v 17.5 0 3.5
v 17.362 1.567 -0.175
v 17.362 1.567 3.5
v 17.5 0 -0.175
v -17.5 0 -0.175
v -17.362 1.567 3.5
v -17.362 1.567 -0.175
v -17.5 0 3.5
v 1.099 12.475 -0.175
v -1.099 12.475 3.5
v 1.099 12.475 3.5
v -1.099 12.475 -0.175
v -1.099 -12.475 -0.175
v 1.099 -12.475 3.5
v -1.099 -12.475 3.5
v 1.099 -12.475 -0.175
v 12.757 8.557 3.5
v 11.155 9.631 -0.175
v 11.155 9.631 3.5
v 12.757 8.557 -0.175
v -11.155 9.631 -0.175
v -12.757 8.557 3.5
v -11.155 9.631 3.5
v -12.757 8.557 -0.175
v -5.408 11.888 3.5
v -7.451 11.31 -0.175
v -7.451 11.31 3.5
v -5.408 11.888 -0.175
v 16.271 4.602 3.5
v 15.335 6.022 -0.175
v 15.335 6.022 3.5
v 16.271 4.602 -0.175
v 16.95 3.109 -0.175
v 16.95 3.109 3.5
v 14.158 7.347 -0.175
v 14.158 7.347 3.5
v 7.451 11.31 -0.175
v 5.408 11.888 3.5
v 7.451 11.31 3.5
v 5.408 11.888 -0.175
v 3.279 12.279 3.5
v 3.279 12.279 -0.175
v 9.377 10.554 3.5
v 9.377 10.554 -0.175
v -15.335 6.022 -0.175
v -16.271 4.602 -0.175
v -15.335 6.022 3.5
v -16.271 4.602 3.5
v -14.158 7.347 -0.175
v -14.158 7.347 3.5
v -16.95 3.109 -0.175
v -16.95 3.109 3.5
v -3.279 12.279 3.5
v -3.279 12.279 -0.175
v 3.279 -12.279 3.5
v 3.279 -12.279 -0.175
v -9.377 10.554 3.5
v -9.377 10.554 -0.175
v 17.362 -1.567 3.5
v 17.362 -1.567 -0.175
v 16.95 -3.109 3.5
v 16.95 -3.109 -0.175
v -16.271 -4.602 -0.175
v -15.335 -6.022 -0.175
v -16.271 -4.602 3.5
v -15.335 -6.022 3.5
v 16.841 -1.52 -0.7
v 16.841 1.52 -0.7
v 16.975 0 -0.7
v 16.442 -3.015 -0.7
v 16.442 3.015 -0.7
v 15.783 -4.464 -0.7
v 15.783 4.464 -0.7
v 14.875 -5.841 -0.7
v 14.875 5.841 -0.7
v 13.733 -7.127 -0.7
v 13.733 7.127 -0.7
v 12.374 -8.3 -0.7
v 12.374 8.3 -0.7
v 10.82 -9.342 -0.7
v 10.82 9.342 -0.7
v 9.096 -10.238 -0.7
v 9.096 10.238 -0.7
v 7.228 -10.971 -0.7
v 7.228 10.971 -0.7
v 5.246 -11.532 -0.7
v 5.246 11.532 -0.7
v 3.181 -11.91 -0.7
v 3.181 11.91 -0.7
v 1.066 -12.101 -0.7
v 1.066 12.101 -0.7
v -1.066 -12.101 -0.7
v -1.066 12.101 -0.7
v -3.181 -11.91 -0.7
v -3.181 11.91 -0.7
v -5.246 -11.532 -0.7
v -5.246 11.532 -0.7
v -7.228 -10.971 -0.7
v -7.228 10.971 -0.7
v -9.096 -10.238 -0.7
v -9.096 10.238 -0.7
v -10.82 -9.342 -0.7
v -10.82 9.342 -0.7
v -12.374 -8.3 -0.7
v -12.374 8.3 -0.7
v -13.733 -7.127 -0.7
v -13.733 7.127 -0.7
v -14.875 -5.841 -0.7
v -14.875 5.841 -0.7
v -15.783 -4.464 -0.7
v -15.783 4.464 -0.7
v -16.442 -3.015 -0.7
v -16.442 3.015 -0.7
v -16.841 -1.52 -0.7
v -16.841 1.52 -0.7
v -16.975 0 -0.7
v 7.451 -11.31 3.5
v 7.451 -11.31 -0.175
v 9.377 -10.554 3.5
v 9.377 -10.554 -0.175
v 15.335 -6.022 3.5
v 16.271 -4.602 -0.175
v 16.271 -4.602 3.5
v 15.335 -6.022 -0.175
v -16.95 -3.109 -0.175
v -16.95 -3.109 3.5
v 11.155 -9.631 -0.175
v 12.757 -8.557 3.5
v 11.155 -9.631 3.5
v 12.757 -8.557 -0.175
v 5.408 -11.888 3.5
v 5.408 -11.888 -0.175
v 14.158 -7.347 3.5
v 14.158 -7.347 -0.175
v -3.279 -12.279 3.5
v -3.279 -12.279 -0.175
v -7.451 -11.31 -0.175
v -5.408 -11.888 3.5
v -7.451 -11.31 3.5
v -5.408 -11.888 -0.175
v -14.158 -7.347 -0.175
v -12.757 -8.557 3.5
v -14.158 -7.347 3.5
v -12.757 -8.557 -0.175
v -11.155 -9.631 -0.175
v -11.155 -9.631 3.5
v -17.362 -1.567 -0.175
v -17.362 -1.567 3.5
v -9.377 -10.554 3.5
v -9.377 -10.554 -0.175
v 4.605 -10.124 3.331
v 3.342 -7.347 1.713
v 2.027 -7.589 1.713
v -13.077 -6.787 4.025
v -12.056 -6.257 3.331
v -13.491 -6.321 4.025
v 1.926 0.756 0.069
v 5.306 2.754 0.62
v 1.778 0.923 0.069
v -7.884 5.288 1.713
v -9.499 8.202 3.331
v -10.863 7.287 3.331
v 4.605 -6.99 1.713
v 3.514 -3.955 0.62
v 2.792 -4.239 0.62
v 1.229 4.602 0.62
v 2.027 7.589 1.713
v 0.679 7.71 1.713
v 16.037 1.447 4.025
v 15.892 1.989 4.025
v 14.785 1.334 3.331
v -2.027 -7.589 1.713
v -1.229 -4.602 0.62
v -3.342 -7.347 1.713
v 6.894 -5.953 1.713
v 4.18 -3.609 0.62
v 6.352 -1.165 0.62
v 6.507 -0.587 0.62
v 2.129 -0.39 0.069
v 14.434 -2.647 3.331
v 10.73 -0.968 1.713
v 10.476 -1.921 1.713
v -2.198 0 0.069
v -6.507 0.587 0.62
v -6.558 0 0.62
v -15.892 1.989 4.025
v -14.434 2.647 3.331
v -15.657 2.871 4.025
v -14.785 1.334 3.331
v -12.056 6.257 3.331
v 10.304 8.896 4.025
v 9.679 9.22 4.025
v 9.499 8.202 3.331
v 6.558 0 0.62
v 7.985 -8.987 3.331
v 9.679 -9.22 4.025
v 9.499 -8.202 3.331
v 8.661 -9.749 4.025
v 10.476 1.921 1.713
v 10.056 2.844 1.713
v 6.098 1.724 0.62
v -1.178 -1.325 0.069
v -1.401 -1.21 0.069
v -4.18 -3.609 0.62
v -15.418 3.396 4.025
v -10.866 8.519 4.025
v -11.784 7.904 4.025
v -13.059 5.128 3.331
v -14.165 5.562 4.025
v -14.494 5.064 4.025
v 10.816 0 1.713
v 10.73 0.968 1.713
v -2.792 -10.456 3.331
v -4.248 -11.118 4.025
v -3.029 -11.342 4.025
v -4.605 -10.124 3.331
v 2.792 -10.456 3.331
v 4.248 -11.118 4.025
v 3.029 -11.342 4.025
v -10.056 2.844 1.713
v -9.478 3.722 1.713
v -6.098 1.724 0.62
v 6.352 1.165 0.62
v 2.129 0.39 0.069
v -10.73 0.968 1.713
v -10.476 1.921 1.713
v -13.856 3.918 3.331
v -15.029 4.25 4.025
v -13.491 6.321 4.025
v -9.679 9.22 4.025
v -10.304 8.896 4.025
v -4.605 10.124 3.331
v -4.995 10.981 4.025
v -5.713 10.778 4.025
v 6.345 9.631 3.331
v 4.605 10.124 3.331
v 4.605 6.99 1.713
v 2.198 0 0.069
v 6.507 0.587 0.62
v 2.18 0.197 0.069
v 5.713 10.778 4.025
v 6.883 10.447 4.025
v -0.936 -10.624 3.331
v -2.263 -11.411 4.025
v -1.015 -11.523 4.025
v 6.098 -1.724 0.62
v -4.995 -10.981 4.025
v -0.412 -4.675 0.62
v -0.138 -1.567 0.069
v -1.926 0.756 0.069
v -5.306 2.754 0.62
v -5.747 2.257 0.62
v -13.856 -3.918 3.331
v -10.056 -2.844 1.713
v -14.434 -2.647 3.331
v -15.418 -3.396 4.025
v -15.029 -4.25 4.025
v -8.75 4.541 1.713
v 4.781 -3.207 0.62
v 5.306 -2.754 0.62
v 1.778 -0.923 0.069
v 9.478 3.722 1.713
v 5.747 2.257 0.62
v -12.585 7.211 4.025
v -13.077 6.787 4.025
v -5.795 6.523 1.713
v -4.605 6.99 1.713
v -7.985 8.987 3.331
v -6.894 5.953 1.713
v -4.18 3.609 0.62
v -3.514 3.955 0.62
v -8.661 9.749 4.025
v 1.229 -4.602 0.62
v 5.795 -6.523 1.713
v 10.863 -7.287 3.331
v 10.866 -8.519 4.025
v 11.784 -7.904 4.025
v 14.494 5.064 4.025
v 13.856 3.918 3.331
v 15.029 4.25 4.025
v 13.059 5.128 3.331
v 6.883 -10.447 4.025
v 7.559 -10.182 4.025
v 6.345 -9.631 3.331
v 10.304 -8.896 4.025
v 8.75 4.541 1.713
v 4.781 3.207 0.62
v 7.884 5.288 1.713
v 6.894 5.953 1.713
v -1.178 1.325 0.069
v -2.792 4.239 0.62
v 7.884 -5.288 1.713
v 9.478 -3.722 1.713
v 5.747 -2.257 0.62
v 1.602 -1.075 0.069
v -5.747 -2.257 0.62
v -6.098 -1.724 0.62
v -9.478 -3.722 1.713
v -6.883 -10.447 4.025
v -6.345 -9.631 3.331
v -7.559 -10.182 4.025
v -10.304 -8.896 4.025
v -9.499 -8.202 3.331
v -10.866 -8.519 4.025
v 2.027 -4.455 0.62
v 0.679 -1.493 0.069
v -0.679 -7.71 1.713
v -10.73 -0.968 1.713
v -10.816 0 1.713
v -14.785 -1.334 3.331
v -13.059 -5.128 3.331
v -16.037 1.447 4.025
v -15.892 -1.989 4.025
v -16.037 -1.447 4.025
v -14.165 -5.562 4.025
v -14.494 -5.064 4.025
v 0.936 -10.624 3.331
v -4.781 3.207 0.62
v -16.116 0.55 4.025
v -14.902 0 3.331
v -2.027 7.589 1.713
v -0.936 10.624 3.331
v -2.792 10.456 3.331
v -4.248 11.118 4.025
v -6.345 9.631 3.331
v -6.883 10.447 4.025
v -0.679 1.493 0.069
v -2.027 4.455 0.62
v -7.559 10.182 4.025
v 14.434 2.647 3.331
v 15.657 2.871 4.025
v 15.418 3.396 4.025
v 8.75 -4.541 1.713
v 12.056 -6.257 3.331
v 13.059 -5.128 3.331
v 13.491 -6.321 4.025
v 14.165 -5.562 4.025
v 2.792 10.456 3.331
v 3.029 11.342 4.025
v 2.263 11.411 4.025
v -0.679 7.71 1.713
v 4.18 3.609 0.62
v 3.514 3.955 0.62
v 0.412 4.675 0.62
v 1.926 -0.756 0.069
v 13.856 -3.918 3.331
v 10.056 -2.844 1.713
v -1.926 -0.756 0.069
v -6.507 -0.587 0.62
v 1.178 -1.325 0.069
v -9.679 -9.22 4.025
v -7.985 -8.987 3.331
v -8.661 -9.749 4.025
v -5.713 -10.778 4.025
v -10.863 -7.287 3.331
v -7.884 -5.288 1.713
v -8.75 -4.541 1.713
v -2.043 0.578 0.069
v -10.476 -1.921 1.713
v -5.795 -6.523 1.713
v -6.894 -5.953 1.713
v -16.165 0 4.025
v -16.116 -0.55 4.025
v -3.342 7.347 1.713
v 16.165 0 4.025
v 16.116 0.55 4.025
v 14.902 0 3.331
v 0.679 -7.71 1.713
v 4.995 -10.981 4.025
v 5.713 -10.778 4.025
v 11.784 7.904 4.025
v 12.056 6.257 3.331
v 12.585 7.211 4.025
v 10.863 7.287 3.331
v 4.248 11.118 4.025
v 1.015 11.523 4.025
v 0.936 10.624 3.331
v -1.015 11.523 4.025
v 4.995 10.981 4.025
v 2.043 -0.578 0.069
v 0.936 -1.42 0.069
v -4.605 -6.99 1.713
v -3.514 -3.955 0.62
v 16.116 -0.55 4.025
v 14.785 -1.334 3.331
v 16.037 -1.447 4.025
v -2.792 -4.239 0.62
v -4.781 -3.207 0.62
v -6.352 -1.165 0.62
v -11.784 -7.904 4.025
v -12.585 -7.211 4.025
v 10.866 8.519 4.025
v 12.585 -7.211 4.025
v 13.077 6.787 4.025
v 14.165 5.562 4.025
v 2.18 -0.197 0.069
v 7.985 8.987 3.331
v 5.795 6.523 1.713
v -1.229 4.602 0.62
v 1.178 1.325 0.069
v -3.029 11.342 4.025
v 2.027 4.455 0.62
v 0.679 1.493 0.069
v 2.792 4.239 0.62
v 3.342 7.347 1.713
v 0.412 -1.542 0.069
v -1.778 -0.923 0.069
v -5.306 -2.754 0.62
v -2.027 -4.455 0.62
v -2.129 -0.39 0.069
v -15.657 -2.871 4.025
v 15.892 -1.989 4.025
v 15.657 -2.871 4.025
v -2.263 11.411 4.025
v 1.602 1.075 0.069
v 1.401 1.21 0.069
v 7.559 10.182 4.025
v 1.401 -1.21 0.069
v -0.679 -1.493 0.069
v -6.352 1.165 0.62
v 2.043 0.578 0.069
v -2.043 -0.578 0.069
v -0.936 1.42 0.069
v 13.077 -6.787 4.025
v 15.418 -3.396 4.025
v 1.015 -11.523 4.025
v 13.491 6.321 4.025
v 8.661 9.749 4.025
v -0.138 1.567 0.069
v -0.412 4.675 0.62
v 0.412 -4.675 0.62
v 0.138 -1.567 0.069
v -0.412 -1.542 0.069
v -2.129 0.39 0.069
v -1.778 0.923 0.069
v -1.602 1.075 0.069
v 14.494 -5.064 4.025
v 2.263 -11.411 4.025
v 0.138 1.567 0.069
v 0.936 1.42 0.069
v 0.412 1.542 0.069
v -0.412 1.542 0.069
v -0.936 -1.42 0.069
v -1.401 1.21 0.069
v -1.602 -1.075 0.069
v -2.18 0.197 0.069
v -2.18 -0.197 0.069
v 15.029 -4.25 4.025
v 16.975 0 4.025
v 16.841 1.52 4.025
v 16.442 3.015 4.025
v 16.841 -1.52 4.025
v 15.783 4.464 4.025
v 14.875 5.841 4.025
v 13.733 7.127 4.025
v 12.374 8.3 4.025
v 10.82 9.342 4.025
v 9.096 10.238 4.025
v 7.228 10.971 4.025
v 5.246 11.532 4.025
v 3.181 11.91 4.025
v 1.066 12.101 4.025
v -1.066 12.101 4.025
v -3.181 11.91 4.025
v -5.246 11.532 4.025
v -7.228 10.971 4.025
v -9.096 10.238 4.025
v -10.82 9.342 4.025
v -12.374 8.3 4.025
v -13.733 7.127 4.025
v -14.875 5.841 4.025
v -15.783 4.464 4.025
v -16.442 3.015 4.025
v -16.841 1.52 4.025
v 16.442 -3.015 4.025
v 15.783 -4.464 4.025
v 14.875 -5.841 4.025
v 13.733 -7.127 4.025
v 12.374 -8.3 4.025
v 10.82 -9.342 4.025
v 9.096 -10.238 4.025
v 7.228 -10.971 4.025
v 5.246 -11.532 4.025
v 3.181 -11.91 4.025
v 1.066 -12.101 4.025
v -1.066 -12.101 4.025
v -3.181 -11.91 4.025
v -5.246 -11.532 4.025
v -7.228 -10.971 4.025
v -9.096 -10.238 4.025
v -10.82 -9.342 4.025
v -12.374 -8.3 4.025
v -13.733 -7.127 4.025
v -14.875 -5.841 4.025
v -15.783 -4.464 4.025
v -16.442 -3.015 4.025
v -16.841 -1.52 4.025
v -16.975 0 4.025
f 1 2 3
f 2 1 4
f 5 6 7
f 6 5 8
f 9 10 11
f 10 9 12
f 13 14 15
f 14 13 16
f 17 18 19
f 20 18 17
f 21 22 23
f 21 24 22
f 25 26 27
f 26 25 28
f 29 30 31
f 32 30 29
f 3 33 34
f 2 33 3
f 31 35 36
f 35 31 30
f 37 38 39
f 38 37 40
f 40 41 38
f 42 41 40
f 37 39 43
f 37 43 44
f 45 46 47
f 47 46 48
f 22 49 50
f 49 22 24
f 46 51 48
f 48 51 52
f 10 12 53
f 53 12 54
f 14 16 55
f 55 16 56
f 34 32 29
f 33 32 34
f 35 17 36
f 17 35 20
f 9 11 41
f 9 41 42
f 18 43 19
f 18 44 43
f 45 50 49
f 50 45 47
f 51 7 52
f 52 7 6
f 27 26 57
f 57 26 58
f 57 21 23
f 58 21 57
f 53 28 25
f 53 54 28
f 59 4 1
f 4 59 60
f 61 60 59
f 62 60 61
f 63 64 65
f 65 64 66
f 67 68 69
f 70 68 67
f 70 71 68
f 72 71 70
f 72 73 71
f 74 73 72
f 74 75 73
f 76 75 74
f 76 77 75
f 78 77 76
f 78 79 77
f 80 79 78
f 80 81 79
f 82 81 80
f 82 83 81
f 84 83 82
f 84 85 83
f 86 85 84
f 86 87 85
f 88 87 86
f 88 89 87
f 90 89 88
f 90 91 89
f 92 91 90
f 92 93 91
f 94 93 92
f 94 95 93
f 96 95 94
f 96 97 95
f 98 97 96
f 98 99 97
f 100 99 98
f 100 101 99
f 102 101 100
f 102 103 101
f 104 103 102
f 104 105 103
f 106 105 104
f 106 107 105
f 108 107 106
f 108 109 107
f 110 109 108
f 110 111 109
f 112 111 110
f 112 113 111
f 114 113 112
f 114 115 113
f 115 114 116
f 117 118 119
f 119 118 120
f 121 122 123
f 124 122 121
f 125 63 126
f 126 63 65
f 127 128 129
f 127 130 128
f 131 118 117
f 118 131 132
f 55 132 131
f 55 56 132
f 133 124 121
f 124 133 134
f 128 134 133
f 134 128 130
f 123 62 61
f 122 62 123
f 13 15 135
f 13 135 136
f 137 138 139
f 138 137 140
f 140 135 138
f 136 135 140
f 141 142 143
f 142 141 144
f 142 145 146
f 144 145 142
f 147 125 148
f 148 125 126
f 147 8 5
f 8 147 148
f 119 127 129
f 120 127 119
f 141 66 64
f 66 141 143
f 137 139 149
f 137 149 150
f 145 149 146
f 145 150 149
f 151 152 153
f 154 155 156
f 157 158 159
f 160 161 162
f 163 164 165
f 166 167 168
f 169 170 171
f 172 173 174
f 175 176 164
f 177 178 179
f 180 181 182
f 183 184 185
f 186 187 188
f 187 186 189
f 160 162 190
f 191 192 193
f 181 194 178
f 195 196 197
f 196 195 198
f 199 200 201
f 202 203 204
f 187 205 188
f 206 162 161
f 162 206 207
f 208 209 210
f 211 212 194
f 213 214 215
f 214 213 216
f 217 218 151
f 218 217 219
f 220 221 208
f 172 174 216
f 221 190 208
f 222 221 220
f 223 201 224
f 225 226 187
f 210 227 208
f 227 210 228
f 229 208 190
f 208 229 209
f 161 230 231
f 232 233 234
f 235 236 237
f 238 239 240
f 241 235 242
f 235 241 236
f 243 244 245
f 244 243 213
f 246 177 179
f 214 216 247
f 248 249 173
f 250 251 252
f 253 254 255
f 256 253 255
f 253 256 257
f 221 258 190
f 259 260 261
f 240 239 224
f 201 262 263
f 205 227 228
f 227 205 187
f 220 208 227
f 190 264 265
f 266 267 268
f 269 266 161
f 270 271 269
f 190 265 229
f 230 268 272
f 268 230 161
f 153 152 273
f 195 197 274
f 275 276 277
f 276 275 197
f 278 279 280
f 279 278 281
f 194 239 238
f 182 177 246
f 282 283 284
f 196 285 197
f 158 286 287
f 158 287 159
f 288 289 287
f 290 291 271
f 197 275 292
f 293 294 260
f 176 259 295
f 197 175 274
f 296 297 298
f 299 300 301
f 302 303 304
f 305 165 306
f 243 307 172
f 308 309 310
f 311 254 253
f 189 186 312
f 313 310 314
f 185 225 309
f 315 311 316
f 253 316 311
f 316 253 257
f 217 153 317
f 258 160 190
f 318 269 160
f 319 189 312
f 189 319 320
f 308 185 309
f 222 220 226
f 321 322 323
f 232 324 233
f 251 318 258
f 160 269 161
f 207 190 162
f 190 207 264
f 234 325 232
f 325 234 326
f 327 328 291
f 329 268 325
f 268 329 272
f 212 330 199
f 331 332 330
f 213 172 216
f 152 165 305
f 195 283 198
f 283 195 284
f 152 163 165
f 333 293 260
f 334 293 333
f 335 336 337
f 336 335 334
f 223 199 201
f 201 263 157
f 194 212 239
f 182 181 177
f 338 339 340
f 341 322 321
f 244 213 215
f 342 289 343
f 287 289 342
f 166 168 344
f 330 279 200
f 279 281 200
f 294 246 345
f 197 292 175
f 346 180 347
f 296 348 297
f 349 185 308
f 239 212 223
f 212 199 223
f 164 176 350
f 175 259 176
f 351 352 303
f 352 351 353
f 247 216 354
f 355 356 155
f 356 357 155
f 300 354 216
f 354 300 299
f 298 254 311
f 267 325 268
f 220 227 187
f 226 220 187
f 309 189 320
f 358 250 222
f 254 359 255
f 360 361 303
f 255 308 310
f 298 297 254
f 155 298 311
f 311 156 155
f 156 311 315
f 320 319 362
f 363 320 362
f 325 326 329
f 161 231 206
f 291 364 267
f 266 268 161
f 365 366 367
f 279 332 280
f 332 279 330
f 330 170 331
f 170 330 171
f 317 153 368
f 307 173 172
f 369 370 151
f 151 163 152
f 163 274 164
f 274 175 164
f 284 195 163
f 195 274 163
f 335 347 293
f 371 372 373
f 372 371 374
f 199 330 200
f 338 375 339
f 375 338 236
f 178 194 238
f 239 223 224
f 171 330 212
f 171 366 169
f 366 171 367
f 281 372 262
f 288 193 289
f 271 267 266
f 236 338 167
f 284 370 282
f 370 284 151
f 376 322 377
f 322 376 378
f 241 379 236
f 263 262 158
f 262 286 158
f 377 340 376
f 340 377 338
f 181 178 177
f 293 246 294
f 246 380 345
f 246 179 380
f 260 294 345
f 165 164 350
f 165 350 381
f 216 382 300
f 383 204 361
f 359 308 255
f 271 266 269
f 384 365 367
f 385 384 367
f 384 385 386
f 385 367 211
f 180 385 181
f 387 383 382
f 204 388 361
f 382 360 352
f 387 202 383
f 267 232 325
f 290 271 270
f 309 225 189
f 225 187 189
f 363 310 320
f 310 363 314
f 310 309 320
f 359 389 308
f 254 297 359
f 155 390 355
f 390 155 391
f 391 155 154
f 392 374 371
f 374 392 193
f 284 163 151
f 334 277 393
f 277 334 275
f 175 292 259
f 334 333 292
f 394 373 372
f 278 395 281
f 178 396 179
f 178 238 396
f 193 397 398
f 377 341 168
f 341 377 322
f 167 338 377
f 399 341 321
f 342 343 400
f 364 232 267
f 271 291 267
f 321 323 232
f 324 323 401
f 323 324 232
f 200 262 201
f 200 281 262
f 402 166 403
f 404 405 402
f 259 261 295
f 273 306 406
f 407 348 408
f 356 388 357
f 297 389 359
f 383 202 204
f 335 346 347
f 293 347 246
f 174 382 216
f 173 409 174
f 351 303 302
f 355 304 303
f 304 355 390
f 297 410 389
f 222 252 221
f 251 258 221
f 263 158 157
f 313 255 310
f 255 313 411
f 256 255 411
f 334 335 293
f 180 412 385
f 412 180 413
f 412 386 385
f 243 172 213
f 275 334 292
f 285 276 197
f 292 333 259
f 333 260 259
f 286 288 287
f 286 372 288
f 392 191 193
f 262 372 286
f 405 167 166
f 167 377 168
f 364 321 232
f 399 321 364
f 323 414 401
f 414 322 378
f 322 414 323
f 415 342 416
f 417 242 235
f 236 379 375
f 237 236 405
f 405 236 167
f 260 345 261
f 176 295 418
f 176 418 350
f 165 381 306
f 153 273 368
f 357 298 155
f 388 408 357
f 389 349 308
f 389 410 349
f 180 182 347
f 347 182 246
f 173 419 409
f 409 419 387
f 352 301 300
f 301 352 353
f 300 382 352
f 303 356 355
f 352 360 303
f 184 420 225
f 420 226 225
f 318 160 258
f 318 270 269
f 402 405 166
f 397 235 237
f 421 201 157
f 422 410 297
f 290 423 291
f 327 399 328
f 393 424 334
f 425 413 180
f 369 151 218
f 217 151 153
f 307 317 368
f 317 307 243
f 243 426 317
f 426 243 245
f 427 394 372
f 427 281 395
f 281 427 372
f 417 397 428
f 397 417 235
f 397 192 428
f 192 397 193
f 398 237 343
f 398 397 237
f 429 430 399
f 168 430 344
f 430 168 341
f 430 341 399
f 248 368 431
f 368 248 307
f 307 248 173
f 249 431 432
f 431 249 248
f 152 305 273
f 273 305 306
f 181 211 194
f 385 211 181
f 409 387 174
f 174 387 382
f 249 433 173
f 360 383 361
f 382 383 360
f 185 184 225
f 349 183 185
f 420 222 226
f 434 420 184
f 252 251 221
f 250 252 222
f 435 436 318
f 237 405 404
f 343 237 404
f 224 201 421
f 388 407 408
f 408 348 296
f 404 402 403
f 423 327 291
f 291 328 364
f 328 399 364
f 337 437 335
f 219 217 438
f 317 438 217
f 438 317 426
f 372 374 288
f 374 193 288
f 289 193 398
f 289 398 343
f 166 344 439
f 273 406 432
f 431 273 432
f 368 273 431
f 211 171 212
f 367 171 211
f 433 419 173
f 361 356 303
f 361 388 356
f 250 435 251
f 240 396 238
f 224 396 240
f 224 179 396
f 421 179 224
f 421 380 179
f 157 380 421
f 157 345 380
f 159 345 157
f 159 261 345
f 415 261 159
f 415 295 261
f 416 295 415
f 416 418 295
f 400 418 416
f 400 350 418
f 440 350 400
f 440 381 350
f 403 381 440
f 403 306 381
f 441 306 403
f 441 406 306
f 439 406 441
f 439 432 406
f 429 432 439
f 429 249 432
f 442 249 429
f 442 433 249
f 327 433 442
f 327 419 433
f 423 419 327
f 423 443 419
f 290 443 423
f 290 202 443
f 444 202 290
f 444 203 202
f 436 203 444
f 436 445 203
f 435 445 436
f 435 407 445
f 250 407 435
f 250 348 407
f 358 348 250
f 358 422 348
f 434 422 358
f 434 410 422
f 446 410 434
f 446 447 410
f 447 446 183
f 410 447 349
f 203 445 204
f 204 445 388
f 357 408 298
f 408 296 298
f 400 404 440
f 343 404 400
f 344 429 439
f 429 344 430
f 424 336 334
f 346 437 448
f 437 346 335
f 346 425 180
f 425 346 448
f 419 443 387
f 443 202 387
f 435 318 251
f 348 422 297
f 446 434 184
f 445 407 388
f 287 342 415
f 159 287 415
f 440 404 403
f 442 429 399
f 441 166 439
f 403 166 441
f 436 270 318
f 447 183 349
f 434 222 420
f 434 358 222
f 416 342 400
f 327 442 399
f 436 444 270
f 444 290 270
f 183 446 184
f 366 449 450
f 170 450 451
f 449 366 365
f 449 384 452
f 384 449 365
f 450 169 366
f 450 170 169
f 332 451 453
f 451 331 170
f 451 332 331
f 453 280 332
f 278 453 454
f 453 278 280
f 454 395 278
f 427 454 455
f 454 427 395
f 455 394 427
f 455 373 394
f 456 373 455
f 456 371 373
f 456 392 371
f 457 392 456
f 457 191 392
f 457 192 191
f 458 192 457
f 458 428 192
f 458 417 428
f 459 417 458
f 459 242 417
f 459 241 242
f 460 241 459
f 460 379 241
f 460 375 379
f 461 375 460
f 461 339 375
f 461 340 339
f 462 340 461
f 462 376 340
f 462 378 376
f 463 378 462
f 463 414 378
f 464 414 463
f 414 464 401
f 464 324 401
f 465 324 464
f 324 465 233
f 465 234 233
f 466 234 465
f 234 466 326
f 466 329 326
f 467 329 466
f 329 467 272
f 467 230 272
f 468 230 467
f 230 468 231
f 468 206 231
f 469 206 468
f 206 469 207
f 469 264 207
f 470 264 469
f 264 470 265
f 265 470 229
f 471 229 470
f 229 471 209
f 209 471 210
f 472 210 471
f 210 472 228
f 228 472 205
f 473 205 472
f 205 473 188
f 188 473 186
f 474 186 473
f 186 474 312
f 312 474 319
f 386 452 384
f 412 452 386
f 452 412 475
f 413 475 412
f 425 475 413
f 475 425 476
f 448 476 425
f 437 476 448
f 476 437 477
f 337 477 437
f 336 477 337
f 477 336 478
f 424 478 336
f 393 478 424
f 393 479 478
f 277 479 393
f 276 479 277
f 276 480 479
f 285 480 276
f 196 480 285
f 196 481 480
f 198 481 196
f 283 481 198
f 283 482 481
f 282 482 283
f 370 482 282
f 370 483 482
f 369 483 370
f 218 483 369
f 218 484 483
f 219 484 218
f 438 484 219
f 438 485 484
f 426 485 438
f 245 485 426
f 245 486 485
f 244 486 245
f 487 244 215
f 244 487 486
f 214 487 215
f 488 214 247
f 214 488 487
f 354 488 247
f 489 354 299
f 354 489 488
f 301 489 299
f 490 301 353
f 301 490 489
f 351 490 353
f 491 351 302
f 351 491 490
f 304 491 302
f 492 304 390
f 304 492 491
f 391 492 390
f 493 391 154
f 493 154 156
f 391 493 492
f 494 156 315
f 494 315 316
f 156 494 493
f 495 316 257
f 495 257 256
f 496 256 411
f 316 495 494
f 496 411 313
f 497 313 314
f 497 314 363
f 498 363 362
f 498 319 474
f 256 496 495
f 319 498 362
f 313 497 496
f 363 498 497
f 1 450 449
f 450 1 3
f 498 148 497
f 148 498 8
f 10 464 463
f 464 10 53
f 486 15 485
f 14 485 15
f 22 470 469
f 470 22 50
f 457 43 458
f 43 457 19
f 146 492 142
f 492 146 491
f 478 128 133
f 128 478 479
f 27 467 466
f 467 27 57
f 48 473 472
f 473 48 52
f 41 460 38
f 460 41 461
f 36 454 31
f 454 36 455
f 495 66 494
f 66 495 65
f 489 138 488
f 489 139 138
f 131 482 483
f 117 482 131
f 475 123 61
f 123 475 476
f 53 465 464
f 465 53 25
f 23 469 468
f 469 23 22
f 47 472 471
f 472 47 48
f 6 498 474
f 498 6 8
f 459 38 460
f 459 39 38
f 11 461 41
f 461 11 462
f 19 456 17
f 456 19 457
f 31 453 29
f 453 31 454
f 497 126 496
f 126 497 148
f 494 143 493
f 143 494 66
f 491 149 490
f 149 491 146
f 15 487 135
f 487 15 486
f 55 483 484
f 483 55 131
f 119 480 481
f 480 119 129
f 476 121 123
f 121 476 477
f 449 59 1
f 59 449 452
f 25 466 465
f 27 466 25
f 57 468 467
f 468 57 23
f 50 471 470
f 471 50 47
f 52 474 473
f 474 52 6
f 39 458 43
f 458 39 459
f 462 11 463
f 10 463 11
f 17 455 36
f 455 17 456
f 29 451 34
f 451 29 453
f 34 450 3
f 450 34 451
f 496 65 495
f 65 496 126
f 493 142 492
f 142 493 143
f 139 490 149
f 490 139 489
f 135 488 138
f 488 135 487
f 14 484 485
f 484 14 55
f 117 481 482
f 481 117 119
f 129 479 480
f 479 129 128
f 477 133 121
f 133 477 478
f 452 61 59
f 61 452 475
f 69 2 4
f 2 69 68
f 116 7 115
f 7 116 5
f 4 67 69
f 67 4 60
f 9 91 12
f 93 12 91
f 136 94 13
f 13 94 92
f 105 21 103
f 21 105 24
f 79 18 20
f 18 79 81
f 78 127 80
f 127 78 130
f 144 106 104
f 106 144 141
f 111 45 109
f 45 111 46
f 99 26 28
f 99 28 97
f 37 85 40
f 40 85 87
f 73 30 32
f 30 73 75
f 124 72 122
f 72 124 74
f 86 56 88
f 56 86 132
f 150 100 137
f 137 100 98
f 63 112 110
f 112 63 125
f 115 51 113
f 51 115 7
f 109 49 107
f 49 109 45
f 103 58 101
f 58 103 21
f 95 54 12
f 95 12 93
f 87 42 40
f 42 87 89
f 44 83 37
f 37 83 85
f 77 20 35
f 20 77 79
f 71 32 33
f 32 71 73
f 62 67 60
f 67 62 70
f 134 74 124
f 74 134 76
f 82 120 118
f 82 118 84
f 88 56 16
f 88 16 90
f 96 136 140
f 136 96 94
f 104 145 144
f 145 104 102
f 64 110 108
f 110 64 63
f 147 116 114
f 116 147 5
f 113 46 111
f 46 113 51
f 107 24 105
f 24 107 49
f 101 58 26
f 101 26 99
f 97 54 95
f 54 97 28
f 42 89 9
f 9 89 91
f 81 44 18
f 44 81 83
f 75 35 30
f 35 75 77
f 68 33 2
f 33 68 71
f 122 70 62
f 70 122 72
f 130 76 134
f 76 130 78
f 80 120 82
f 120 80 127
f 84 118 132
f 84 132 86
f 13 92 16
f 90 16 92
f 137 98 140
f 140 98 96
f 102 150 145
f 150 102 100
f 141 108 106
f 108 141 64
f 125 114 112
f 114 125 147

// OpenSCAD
// made so eggs don't roll off of my kitchen counter

// squish along y axis
scale([.7, .5, .7]){
    // apply chamfers
    intersection(){
        difference(){
            //base cylinder
            translate([0, 0, -1]) cylinder(r1=25, r2=25, h=16, $fn=50);
            // remove divot from top face
            translate([0, 0, 50]) sphere(r=50, $fn=50);
            // top face smoothing
            translate([0, 0, 43.25]) cube([75, 75, 75], center=true);
        }
        //top edge chamfer
        translate([0, 0, -5])cylinder(r1=35, r2=0, h=35, $fn=50);
        // base chamfer
        translate([0, 0, -25.25])cylinder(r1=0, r2=35, h=35, $fn=50);
    }
}
